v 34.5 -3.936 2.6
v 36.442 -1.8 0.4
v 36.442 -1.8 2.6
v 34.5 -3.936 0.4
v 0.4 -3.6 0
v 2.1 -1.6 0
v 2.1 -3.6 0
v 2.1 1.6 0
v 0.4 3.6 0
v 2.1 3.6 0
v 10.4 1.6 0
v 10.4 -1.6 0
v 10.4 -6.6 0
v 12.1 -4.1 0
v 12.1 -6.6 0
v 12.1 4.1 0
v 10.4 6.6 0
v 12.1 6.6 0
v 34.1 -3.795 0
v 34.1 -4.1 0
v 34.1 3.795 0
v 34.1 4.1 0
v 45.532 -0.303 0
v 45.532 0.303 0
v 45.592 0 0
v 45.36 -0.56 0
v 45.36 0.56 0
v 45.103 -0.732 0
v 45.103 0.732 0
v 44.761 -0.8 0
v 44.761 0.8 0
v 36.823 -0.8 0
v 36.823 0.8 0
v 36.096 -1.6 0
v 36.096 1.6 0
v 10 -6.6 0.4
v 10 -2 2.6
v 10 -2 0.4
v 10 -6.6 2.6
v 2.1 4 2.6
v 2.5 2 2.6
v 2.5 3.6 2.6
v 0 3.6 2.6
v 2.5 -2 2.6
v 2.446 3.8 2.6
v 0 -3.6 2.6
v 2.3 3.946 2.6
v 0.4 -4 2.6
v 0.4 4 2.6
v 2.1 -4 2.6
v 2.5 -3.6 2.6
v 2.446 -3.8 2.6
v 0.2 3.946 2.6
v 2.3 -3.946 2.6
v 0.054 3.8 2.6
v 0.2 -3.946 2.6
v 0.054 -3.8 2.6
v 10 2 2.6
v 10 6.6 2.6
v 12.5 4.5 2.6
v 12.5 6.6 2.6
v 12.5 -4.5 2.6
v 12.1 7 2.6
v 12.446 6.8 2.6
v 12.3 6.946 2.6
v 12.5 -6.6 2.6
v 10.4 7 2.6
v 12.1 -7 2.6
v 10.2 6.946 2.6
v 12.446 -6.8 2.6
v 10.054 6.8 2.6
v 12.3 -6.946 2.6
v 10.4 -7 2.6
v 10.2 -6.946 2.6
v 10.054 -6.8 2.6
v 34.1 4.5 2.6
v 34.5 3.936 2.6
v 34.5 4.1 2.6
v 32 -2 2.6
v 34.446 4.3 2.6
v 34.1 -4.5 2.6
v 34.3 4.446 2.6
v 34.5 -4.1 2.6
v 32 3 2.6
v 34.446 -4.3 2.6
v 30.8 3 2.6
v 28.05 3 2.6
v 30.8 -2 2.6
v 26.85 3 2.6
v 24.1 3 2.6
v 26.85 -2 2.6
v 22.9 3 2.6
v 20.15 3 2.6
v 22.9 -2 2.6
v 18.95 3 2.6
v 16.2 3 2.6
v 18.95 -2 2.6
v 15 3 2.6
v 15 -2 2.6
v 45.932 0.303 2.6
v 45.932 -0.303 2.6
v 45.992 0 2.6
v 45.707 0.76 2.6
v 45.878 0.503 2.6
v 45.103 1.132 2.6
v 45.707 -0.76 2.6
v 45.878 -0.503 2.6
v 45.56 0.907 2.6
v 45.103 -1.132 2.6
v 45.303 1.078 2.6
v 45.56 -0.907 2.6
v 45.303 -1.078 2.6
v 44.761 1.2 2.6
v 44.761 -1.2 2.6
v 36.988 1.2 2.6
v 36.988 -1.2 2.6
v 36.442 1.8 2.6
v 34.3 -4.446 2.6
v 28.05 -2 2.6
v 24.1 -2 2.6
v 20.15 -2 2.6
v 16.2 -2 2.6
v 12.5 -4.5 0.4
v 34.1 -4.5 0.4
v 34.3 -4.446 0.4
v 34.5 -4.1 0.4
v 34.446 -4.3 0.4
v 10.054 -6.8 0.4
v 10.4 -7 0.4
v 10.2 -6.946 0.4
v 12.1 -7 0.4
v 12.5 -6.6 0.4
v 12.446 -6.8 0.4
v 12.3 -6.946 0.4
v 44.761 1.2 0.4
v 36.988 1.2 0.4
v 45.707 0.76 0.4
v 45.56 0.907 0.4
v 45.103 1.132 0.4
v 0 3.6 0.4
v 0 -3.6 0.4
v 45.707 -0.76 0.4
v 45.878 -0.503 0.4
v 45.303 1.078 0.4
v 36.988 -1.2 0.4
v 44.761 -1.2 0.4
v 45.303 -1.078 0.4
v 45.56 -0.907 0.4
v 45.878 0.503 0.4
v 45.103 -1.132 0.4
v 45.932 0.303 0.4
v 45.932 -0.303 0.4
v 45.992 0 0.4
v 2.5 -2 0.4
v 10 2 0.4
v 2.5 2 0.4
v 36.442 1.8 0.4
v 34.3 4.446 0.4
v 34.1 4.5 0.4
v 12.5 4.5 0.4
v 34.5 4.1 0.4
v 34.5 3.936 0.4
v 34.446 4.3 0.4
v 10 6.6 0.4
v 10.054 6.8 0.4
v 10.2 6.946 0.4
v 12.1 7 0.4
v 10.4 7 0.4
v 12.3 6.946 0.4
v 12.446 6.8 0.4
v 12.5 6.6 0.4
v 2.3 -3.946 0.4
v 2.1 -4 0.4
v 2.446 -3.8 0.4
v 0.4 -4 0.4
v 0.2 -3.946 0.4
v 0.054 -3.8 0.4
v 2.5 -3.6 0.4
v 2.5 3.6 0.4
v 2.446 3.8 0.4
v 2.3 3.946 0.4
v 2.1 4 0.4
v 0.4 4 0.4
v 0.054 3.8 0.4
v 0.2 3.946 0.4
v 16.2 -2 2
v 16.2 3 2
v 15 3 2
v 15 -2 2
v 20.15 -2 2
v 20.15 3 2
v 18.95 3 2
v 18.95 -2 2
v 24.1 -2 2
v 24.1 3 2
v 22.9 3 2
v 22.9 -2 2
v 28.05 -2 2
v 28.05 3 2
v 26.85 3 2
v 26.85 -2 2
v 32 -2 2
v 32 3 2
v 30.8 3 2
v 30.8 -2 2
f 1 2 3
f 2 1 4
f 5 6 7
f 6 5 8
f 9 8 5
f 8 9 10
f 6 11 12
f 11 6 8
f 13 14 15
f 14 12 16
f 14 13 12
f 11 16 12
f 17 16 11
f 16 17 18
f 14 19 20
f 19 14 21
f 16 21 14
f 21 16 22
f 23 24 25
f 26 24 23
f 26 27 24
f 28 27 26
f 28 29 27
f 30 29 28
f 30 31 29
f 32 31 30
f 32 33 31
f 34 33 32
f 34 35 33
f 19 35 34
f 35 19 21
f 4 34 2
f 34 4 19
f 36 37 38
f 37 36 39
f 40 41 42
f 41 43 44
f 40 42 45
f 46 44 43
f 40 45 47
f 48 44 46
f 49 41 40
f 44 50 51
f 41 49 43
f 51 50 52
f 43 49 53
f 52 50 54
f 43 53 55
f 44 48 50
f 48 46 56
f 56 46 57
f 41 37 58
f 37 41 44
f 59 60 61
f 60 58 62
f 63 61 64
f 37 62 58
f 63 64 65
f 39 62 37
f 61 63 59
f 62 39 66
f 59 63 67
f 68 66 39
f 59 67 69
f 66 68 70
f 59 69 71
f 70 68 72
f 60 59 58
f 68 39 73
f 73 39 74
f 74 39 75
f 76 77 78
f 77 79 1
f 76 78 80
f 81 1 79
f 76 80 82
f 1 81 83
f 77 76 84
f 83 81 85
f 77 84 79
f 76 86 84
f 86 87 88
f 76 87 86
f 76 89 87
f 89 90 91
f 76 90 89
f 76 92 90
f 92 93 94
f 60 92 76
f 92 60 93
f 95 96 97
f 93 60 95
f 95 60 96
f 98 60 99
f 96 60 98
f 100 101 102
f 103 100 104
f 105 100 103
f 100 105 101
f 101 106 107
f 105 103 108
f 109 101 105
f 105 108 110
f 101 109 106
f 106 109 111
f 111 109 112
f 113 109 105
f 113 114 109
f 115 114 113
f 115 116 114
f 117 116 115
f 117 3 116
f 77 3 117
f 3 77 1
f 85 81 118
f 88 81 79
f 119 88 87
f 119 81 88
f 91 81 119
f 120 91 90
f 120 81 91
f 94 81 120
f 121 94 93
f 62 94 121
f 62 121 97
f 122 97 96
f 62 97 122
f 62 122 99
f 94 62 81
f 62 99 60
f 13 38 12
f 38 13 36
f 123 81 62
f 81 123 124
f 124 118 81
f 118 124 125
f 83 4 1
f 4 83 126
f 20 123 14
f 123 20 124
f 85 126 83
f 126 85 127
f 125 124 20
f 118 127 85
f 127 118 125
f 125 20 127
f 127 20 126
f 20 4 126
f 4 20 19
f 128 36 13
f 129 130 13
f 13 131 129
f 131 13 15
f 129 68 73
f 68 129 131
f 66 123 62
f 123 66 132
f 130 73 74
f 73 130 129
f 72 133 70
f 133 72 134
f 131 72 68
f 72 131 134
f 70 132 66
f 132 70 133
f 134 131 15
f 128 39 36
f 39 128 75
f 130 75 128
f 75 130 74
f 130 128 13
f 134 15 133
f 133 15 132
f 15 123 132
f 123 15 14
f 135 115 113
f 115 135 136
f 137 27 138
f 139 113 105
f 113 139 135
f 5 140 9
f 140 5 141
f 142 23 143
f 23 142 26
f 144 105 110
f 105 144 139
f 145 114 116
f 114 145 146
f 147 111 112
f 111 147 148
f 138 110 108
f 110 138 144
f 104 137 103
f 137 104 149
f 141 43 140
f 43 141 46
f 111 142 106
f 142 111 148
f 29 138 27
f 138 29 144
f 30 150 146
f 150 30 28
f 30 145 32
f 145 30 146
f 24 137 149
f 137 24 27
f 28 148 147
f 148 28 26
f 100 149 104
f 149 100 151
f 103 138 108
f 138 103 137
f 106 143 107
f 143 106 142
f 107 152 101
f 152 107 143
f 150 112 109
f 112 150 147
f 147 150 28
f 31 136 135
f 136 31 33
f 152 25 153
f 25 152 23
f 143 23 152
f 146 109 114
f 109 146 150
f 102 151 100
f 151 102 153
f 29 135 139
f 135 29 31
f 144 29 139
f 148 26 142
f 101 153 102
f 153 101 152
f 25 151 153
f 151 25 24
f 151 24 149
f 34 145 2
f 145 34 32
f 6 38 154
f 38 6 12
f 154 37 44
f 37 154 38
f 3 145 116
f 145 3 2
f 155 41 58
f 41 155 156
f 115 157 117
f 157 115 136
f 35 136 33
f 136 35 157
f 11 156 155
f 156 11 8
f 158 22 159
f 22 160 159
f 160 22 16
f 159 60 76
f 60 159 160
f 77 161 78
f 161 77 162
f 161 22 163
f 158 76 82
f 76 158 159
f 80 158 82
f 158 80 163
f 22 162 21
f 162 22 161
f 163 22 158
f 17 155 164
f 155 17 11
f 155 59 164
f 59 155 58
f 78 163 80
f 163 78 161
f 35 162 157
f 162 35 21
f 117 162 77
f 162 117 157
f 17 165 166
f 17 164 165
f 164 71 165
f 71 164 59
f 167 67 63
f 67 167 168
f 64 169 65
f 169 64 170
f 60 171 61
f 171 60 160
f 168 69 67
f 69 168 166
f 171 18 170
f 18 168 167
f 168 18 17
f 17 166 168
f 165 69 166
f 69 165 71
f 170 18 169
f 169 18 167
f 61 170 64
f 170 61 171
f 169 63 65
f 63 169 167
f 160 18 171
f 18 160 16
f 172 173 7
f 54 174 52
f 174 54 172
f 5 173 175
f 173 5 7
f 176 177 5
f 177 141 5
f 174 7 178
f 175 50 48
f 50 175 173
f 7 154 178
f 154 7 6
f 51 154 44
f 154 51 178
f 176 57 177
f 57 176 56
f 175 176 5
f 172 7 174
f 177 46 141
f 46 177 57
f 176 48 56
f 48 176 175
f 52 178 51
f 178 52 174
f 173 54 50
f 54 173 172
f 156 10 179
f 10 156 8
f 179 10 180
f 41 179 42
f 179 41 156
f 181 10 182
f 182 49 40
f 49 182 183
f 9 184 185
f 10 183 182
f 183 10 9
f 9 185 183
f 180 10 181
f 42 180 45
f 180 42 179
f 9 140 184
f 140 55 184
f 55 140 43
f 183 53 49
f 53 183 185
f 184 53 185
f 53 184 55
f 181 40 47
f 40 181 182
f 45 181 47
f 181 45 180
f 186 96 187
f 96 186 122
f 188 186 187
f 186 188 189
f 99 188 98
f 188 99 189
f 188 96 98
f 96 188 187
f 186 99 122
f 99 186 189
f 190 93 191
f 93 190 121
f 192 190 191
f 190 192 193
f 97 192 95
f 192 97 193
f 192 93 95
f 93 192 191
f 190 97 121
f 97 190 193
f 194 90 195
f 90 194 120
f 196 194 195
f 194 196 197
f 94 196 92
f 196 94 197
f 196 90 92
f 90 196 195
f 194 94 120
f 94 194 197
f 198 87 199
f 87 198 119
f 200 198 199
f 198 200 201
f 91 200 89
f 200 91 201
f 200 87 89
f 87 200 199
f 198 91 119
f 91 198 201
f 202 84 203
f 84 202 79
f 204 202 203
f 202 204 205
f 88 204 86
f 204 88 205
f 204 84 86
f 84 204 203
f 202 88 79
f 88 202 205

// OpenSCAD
// syringe.scad - syringe with needle, token (design_brief.md 4.12). Flat silhouette
// 46 x 14 x 2.6, in line along x: thumb press, plunger rod 4 wide, finger flange 14 wide,
// barrel 9 x 22, hub, needle 2.4 wide x 9 with a rounded tip. The whole outline is 2.6
// thick; barrel marks are 0.6 deep grooves. Single colour (clear PETG), prints flat.
// Export: openscad -o syringe.stl syringe.scad
include <common.scad>

length     = 46;
barrel_w   = 9;
barrel_l   = 22;
flange_w   = 14;
rod_w      = 4;
needle_l   = 9;
needle_w   = min_handled;       // 2.4
marks      = true;
mark_w     = picto_min;         // 1.2 wide grooves
mark_l     = 5;
mark_n     = 5;
thickness  = band1_h + detail_h;   // 2.6

press_l = 2.5; rod_l = 7.5; flange_l = 2.5;
barrel_x = press_l + rod_l + flange_l;                       // 12.5
hub_l    = length - barrel_x - barrel_l - needle_l;          // 2.5
needle_x = barrel_x + barrel_l + hub_l;                      // 37

module syringe_2d() {
    translate([0, -4]) square([press_l, 8]);                                  // thumb press
    translate([press_l - 0.5, -rod_w / 2]) square([rod_l + 1, rod_w]);        // plunger rod
    translate([press_l + rod_l, -flange_w / 2]) square([flange_l, flange_w]); // finger flange
    translate([barrel_x - 0.5, -barrel_w / 2]) square([barrel_l + 0.5, barrel_w]);
    hx = barrel_x + barrel_l;                                                 // hub, tapering to the needle
    polygon([[hx - 0.5, barrel_w / 2], [hx + hub_l, needle_w / 2], [hx + hub_l, -needle_w / 2], [hx - 0.5, -barrel_w / 2]]);
    hull() {                                                                  // needle with a rounded tip
        translate([needle_x - 0.5, -needle_w / 2]) square([0.5, needle_w]);
        translate([length - needle_w / 2, 0]) circle(d = needle_w);
    }
}

module syringe() band_colour(1) difference() {
    extrude_chamfered(thickness) syringe_2d();
    if (marks) for (i = [0 : mark_n - 1])
        translate([barrel_x + 2.5 + i * (barrel_l - 5 - mark_w) / (mark_n - 1), -mark_l / 2 + 0.5, thickness - detail_h])
            cube([mark_w, mark_l, detail_h + 1]);
}

syringe();
